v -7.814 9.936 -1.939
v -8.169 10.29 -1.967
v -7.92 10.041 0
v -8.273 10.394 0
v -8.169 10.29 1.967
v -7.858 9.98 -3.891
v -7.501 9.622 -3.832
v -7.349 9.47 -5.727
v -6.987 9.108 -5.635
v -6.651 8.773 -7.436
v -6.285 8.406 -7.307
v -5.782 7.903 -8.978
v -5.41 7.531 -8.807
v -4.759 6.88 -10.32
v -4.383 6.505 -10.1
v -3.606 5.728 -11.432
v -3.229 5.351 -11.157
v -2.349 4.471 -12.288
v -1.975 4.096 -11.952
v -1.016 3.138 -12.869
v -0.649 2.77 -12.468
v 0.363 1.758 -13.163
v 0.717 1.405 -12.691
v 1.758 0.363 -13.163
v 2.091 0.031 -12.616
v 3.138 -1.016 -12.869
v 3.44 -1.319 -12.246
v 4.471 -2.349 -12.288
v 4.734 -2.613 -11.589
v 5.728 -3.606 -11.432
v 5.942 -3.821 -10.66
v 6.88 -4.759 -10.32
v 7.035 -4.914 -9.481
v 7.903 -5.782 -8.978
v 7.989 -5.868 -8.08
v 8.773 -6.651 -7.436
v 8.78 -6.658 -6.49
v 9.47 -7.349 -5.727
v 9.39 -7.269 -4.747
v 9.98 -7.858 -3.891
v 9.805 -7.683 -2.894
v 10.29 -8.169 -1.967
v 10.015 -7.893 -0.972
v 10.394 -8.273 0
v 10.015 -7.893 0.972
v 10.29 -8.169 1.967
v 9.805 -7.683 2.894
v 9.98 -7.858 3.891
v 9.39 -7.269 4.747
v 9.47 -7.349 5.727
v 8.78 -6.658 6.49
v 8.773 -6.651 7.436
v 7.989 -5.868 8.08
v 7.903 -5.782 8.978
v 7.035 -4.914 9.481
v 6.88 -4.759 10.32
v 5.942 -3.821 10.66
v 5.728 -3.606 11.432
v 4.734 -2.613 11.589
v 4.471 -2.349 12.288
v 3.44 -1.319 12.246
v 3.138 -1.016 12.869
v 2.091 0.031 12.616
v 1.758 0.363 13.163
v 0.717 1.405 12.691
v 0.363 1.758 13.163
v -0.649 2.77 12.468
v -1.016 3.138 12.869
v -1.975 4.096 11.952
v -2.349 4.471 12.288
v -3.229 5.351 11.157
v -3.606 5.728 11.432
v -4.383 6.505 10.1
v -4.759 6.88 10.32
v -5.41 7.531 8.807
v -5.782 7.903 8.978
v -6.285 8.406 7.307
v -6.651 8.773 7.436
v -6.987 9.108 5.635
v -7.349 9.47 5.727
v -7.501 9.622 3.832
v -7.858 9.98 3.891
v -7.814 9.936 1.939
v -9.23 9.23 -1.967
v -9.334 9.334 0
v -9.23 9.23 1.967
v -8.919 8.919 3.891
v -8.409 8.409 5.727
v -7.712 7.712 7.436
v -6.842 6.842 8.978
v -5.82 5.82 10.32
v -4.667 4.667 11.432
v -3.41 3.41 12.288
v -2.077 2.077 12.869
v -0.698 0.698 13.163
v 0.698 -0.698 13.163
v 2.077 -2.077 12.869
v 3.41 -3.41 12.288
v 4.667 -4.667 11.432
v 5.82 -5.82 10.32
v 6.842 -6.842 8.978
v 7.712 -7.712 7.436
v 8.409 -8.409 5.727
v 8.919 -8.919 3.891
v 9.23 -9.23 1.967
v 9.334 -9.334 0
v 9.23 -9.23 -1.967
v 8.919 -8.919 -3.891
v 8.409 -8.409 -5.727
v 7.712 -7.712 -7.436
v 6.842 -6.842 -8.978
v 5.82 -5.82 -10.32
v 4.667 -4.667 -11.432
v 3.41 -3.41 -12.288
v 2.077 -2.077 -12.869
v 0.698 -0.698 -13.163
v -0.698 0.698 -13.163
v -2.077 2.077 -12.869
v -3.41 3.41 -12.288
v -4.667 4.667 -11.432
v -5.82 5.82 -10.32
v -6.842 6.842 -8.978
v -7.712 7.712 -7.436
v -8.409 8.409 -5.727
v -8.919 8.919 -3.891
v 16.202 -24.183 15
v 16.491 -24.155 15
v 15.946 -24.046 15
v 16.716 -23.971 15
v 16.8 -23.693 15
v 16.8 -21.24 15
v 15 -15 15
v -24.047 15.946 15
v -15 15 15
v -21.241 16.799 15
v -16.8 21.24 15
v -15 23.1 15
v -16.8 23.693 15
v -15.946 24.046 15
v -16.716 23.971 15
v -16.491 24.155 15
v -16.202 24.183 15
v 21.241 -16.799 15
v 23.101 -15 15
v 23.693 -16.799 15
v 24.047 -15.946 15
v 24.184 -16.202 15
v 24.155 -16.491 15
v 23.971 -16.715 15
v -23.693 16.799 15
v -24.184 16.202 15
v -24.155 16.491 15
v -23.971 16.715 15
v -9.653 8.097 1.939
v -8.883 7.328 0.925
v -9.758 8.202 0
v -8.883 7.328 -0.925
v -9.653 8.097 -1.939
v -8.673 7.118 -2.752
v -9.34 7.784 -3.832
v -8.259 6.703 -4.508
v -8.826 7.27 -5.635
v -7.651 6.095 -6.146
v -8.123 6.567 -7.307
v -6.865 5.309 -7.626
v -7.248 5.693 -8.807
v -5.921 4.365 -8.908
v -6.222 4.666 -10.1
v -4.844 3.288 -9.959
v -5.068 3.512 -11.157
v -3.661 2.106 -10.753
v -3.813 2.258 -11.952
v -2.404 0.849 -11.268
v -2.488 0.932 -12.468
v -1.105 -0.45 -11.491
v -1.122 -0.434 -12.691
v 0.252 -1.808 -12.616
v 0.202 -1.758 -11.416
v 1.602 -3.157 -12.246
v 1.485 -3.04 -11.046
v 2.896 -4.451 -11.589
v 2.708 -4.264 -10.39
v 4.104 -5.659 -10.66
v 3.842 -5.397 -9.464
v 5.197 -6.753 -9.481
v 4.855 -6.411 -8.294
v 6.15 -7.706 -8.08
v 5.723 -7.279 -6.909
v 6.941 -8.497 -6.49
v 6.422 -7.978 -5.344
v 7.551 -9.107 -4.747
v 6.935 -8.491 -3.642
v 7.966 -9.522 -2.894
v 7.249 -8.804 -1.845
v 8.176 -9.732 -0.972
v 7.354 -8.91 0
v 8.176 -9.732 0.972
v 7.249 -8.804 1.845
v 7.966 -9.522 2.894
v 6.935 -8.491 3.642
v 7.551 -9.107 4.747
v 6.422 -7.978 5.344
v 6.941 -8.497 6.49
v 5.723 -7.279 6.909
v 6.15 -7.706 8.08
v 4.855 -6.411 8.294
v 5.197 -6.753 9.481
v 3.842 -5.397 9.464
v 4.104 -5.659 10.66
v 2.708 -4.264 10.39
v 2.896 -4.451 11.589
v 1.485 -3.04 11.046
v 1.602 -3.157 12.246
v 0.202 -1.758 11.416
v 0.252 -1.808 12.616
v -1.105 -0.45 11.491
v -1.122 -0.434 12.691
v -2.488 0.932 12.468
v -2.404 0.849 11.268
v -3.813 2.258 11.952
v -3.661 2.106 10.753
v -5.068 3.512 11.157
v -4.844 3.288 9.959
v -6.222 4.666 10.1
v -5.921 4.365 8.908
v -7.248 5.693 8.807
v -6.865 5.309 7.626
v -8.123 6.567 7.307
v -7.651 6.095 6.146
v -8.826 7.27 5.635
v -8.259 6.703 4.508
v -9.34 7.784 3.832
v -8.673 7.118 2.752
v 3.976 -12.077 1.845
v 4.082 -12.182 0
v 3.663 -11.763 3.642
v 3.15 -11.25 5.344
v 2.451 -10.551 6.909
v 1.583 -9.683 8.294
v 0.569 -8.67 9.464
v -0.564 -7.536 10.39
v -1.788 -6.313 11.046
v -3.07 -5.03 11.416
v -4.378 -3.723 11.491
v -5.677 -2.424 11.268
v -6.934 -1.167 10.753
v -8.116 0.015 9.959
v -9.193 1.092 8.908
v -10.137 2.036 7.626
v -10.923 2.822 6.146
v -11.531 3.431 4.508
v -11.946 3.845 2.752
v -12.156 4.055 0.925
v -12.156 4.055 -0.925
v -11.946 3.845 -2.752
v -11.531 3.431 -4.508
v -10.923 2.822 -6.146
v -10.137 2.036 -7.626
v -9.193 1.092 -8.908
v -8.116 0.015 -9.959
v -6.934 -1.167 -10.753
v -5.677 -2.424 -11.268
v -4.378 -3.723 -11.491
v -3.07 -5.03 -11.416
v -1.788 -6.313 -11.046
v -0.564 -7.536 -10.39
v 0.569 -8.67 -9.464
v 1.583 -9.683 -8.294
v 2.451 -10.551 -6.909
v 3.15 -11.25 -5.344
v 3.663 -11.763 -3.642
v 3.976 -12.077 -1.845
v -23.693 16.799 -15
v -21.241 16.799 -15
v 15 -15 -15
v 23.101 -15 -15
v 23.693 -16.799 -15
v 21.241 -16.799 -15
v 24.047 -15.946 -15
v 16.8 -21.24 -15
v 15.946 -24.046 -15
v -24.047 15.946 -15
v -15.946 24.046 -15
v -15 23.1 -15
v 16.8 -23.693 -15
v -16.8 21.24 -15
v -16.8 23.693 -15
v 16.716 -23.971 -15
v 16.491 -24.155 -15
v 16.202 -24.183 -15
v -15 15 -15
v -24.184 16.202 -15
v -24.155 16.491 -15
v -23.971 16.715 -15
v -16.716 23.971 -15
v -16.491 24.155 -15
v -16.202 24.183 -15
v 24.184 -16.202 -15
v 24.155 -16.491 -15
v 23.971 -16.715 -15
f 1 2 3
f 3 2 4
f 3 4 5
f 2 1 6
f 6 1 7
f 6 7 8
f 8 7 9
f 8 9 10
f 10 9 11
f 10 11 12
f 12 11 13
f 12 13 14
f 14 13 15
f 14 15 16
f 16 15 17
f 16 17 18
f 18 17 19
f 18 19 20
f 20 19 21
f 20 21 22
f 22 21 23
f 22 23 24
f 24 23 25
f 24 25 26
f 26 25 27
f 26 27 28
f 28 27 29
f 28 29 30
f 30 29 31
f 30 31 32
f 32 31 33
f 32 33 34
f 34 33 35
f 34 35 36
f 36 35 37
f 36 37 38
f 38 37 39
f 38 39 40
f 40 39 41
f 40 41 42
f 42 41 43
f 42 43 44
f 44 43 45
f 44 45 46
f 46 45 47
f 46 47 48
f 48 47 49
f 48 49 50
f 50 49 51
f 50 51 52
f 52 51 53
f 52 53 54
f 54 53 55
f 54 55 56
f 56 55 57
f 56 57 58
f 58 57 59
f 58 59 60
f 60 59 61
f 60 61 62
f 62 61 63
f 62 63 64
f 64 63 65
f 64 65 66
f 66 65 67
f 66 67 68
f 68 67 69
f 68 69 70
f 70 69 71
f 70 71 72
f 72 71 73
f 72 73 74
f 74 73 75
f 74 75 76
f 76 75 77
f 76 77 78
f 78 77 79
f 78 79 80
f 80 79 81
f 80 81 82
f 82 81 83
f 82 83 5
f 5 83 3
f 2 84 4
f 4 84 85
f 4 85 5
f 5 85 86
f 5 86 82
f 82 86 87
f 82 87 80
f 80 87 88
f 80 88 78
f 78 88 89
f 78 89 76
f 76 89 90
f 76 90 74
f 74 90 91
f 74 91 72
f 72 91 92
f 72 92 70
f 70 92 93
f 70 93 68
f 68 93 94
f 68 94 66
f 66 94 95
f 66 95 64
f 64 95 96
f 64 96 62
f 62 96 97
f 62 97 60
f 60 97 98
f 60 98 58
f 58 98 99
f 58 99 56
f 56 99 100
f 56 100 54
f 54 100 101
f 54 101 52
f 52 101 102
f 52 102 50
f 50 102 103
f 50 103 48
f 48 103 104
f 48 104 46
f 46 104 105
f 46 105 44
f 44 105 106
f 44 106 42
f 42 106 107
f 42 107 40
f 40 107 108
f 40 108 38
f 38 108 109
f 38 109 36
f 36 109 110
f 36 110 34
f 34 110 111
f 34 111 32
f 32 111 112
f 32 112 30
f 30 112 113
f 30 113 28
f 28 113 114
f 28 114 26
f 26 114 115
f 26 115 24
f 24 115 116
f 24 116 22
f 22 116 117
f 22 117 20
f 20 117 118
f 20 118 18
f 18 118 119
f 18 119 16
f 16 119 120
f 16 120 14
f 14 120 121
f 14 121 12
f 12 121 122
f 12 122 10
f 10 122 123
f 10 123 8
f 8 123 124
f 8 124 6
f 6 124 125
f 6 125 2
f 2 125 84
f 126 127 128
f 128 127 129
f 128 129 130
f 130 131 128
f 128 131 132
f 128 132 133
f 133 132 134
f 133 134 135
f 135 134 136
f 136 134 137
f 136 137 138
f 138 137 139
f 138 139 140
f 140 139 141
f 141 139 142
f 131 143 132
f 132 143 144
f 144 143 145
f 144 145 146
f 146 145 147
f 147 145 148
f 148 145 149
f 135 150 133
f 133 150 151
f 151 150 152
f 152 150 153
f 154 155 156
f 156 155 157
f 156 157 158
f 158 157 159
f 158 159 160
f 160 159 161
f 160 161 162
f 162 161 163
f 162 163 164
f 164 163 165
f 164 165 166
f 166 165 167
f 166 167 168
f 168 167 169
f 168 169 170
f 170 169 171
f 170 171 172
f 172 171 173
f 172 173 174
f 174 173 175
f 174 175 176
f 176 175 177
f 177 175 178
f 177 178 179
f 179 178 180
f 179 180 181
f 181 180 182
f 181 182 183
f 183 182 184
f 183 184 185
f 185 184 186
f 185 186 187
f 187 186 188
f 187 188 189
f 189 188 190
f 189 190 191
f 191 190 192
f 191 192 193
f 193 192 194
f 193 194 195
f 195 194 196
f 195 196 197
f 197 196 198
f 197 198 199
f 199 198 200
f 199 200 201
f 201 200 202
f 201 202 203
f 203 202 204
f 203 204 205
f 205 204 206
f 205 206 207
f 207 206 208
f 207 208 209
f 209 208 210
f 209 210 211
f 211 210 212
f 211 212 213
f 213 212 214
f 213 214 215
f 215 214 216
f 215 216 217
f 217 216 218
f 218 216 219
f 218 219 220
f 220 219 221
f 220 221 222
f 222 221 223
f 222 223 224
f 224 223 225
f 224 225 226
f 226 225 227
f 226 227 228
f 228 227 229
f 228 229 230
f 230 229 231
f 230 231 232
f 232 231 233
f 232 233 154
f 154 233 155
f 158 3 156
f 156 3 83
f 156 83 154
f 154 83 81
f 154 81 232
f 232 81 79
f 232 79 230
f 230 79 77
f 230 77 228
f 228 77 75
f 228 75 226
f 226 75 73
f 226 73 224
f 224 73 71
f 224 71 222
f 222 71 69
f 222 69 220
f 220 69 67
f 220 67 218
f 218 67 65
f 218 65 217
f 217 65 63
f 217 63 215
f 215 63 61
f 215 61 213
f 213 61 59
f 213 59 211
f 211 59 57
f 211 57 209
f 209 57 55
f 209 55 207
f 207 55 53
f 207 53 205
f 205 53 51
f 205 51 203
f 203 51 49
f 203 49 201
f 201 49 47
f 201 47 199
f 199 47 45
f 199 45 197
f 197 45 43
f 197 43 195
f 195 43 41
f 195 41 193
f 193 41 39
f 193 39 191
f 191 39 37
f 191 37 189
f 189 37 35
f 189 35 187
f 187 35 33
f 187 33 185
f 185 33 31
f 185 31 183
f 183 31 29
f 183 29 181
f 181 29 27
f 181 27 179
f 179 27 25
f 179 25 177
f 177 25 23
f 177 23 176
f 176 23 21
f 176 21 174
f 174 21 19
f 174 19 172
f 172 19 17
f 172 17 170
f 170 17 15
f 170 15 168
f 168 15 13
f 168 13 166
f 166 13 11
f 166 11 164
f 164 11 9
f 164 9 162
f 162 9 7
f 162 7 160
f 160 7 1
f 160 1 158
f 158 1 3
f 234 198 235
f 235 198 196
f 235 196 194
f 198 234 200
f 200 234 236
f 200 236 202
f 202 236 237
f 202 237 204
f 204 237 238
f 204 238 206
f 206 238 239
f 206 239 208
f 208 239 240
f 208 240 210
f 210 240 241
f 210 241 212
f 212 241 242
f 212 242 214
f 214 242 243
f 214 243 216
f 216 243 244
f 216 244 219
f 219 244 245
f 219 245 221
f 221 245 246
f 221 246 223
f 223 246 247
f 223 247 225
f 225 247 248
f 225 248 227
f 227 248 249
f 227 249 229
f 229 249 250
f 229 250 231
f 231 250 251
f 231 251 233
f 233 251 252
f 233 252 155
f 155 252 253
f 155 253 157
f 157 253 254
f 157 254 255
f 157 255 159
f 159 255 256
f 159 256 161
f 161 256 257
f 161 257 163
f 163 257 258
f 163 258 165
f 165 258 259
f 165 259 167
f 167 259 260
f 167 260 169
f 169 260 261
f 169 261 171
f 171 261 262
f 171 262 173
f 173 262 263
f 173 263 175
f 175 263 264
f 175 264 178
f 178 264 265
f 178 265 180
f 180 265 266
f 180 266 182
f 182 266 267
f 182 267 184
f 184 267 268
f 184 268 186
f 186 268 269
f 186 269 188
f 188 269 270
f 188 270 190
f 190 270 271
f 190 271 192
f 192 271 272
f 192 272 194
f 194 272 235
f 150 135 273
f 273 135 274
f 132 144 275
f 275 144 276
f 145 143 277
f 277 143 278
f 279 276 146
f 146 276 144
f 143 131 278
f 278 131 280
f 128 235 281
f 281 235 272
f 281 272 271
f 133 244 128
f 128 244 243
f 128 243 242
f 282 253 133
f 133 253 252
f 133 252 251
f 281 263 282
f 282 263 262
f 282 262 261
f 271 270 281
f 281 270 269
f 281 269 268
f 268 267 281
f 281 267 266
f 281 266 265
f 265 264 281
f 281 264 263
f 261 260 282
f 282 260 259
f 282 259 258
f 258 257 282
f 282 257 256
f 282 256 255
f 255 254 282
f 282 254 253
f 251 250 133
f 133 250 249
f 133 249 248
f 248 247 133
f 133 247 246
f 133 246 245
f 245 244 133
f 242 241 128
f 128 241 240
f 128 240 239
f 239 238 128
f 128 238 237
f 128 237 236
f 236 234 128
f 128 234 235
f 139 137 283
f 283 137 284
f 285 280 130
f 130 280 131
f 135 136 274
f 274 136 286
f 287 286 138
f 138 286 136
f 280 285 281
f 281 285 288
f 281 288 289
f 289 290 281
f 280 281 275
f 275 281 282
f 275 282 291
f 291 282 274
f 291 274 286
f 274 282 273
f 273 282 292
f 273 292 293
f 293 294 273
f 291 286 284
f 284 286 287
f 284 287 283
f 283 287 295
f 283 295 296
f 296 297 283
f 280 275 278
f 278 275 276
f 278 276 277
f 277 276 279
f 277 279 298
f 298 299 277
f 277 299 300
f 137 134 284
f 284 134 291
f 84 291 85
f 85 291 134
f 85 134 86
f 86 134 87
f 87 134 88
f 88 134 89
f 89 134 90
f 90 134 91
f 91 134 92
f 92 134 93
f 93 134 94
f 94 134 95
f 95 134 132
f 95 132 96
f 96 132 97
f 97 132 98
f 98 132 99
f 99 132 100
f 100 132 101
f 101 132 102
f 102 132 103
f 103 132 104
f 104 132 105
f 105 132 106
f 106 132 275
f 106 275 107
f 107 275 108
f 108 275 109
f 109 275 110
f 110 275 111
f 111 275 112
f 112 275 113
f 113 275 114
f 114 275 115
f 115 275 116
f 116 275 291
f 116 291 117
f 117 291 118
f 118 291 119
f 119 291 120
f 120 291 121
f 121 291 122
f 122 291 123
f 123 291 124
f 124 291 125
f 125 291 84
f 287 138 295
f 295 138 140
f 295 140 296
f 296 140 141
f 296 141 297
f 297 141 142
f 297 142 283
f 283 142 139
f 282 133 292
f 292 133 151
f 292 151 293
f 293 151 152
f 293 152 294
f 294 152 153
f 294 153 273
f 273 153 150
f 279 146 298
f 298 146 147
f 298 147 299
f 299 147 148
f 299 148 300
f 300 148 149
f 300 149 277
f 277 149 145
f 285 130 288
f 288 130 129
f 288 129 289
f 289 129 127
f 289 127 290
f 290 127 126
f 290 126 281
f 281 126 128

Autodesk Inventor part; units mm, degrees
ref_plane "YZ Plane" through (0, 0, 0) normal (1, 0, 0) x (0, 1, 0)
ref_plane "XZ Plane" through (0, 0, 0) normal (0, 1, 0) x (-1, 0, 0)
ref_plane "XY Plane" through (0, 0, 0) normal (0, 0, 1) x (1, 0, 0)
sketch "草图1" plane through (0, 0, 0) normal (0, 0, 1) x (1, 0, 0)
  line L0 (-16.8, 24.9) -> (-16.8, 21.24)
  line L1 (-16.8, 21.24) -> (-21.2406, 16.7994)
  line L2 (-21.2406, 16.7994) -> (-24.9006, 16.7994)
  line L3 (16.8, -24.9) -> (16.8, -21.24)
  line L4 (16.8, -21.24) -> (21.2406, -16.7994)
  line L5 (21.2406, -16.7994) -> (24.9006, -16.7994)
  line L6 (-24.9006, 16.7994) -> (16.8, -24.9)
  line L7 (0, 0) -> (-0.1347, -0.1347)
  line L8 (22.4746, -22.7439) -> (22.4746, -22.7439)
  line L9 (-15, 15) -> (-15, 23.1001)
  line L10 (15, -15) -> (23.1012, -15)
  line L11 (-15, 23.1001) -> (-16.8, 24.9)
  line L12 (23.1012, -15) -> (24.9006, -16.7994)
  line L13 (-15, 15) -> (15, -15)
extrude "拉伸1" add sketch "草图1" along normal blind 15 and the other way blind 15
sketch "草图2" plane through (-15, 15, -15) normal (0.7071068, 0.7071068, 0) x (-0.7071068, 0.7071068, 0)
  point P0 (-21.2132, 15)
  point P1 (-21.2132, 15)
hole "孔1" at (0, 0, 0) direction (-0.7071068, -0.7071068, 0) diameter 23 end through all counterbore diameter 25.4 counterbore depth 1.1
sketch "草图3" plane through (-15, 15, -15) normal (0.7071068, 0.7071068, 0) x (-0.7071068, 0.7071068, 0)
  point P0 (-21.2132, 15)
sketch "草图4" plane through (-15, 15, -15) normal (0.7071068, 0.7071068, 0) x (-0.7071068, 0.7071068, 0)
  point P0 (-21.2132, 15)
sketch "草图5" plane through (-15, 15, -15) normal (0.7071068, 0.7071068, 0) x (-0.7071068, 0.7071068, 0)
  circle A0 centre (-21.2132, 15) radius 12.7
  circle A1 centre (-21.2132, 15) radius 13.2
  dimension "d18" = 0.5
  dimension "d19" = 25.4
extrude "拉伸2" add sketch "草图5" along normal blind 1.5 contours A0 | A1
sketch "草图6" plane through (1.0607, 1.0607, 0) normal (0.7071068, 0.7071068, 0) x (-0.7071068, 0.7071068, 0)
  point P0 (0, 0)
  point P1 (0, 0)
hole "孔2" at (1.0607, 1.0607, 0) direction (-0.7071068, -0.7071068, 0) diameter 25.4 end up to surface
fillet "圆角1" radius 0.5 1 edges at (-16.8, 24.9, 0)
fillet "圆角2" radius 0.5 1 edges at (-24.9006, 16.7994, 0)
fillet "圆角3" radius 0.5 1 edges at (24.9006, -16.7994, 0)
fillet "圆角4" radius 0.5 1 edges at (16.8, -24.9, 0)
sketch "草图7" plane through (-15, 15, -15) normal (0.7071068, 0.7071068, 0) x (-0.7071068, 0.7071068, 0)
  point P0 (-21.2132, 15)
equation "\"d15\" = Thickness"
equation "\"BendRadius\" = Thickness"
equation "\"BendReliefWidth\" = Thickness"
equation "\"BendReliefDepth\" = 0.5 * Thickness"
equation "\"CornerReliefSize\" = 4 * Thickness"
equation "\"MinimumRemnant\" = 2 * Thickness"
equation "\"TransitionRadius\" = BendRadius"
equation "\"JacobiRadiusSize\" = BendRadius"
equation "\"GapSize\" = Thickness"
equation "\"Thickness\" = 0.5"
properties part number "fenguangjing"
